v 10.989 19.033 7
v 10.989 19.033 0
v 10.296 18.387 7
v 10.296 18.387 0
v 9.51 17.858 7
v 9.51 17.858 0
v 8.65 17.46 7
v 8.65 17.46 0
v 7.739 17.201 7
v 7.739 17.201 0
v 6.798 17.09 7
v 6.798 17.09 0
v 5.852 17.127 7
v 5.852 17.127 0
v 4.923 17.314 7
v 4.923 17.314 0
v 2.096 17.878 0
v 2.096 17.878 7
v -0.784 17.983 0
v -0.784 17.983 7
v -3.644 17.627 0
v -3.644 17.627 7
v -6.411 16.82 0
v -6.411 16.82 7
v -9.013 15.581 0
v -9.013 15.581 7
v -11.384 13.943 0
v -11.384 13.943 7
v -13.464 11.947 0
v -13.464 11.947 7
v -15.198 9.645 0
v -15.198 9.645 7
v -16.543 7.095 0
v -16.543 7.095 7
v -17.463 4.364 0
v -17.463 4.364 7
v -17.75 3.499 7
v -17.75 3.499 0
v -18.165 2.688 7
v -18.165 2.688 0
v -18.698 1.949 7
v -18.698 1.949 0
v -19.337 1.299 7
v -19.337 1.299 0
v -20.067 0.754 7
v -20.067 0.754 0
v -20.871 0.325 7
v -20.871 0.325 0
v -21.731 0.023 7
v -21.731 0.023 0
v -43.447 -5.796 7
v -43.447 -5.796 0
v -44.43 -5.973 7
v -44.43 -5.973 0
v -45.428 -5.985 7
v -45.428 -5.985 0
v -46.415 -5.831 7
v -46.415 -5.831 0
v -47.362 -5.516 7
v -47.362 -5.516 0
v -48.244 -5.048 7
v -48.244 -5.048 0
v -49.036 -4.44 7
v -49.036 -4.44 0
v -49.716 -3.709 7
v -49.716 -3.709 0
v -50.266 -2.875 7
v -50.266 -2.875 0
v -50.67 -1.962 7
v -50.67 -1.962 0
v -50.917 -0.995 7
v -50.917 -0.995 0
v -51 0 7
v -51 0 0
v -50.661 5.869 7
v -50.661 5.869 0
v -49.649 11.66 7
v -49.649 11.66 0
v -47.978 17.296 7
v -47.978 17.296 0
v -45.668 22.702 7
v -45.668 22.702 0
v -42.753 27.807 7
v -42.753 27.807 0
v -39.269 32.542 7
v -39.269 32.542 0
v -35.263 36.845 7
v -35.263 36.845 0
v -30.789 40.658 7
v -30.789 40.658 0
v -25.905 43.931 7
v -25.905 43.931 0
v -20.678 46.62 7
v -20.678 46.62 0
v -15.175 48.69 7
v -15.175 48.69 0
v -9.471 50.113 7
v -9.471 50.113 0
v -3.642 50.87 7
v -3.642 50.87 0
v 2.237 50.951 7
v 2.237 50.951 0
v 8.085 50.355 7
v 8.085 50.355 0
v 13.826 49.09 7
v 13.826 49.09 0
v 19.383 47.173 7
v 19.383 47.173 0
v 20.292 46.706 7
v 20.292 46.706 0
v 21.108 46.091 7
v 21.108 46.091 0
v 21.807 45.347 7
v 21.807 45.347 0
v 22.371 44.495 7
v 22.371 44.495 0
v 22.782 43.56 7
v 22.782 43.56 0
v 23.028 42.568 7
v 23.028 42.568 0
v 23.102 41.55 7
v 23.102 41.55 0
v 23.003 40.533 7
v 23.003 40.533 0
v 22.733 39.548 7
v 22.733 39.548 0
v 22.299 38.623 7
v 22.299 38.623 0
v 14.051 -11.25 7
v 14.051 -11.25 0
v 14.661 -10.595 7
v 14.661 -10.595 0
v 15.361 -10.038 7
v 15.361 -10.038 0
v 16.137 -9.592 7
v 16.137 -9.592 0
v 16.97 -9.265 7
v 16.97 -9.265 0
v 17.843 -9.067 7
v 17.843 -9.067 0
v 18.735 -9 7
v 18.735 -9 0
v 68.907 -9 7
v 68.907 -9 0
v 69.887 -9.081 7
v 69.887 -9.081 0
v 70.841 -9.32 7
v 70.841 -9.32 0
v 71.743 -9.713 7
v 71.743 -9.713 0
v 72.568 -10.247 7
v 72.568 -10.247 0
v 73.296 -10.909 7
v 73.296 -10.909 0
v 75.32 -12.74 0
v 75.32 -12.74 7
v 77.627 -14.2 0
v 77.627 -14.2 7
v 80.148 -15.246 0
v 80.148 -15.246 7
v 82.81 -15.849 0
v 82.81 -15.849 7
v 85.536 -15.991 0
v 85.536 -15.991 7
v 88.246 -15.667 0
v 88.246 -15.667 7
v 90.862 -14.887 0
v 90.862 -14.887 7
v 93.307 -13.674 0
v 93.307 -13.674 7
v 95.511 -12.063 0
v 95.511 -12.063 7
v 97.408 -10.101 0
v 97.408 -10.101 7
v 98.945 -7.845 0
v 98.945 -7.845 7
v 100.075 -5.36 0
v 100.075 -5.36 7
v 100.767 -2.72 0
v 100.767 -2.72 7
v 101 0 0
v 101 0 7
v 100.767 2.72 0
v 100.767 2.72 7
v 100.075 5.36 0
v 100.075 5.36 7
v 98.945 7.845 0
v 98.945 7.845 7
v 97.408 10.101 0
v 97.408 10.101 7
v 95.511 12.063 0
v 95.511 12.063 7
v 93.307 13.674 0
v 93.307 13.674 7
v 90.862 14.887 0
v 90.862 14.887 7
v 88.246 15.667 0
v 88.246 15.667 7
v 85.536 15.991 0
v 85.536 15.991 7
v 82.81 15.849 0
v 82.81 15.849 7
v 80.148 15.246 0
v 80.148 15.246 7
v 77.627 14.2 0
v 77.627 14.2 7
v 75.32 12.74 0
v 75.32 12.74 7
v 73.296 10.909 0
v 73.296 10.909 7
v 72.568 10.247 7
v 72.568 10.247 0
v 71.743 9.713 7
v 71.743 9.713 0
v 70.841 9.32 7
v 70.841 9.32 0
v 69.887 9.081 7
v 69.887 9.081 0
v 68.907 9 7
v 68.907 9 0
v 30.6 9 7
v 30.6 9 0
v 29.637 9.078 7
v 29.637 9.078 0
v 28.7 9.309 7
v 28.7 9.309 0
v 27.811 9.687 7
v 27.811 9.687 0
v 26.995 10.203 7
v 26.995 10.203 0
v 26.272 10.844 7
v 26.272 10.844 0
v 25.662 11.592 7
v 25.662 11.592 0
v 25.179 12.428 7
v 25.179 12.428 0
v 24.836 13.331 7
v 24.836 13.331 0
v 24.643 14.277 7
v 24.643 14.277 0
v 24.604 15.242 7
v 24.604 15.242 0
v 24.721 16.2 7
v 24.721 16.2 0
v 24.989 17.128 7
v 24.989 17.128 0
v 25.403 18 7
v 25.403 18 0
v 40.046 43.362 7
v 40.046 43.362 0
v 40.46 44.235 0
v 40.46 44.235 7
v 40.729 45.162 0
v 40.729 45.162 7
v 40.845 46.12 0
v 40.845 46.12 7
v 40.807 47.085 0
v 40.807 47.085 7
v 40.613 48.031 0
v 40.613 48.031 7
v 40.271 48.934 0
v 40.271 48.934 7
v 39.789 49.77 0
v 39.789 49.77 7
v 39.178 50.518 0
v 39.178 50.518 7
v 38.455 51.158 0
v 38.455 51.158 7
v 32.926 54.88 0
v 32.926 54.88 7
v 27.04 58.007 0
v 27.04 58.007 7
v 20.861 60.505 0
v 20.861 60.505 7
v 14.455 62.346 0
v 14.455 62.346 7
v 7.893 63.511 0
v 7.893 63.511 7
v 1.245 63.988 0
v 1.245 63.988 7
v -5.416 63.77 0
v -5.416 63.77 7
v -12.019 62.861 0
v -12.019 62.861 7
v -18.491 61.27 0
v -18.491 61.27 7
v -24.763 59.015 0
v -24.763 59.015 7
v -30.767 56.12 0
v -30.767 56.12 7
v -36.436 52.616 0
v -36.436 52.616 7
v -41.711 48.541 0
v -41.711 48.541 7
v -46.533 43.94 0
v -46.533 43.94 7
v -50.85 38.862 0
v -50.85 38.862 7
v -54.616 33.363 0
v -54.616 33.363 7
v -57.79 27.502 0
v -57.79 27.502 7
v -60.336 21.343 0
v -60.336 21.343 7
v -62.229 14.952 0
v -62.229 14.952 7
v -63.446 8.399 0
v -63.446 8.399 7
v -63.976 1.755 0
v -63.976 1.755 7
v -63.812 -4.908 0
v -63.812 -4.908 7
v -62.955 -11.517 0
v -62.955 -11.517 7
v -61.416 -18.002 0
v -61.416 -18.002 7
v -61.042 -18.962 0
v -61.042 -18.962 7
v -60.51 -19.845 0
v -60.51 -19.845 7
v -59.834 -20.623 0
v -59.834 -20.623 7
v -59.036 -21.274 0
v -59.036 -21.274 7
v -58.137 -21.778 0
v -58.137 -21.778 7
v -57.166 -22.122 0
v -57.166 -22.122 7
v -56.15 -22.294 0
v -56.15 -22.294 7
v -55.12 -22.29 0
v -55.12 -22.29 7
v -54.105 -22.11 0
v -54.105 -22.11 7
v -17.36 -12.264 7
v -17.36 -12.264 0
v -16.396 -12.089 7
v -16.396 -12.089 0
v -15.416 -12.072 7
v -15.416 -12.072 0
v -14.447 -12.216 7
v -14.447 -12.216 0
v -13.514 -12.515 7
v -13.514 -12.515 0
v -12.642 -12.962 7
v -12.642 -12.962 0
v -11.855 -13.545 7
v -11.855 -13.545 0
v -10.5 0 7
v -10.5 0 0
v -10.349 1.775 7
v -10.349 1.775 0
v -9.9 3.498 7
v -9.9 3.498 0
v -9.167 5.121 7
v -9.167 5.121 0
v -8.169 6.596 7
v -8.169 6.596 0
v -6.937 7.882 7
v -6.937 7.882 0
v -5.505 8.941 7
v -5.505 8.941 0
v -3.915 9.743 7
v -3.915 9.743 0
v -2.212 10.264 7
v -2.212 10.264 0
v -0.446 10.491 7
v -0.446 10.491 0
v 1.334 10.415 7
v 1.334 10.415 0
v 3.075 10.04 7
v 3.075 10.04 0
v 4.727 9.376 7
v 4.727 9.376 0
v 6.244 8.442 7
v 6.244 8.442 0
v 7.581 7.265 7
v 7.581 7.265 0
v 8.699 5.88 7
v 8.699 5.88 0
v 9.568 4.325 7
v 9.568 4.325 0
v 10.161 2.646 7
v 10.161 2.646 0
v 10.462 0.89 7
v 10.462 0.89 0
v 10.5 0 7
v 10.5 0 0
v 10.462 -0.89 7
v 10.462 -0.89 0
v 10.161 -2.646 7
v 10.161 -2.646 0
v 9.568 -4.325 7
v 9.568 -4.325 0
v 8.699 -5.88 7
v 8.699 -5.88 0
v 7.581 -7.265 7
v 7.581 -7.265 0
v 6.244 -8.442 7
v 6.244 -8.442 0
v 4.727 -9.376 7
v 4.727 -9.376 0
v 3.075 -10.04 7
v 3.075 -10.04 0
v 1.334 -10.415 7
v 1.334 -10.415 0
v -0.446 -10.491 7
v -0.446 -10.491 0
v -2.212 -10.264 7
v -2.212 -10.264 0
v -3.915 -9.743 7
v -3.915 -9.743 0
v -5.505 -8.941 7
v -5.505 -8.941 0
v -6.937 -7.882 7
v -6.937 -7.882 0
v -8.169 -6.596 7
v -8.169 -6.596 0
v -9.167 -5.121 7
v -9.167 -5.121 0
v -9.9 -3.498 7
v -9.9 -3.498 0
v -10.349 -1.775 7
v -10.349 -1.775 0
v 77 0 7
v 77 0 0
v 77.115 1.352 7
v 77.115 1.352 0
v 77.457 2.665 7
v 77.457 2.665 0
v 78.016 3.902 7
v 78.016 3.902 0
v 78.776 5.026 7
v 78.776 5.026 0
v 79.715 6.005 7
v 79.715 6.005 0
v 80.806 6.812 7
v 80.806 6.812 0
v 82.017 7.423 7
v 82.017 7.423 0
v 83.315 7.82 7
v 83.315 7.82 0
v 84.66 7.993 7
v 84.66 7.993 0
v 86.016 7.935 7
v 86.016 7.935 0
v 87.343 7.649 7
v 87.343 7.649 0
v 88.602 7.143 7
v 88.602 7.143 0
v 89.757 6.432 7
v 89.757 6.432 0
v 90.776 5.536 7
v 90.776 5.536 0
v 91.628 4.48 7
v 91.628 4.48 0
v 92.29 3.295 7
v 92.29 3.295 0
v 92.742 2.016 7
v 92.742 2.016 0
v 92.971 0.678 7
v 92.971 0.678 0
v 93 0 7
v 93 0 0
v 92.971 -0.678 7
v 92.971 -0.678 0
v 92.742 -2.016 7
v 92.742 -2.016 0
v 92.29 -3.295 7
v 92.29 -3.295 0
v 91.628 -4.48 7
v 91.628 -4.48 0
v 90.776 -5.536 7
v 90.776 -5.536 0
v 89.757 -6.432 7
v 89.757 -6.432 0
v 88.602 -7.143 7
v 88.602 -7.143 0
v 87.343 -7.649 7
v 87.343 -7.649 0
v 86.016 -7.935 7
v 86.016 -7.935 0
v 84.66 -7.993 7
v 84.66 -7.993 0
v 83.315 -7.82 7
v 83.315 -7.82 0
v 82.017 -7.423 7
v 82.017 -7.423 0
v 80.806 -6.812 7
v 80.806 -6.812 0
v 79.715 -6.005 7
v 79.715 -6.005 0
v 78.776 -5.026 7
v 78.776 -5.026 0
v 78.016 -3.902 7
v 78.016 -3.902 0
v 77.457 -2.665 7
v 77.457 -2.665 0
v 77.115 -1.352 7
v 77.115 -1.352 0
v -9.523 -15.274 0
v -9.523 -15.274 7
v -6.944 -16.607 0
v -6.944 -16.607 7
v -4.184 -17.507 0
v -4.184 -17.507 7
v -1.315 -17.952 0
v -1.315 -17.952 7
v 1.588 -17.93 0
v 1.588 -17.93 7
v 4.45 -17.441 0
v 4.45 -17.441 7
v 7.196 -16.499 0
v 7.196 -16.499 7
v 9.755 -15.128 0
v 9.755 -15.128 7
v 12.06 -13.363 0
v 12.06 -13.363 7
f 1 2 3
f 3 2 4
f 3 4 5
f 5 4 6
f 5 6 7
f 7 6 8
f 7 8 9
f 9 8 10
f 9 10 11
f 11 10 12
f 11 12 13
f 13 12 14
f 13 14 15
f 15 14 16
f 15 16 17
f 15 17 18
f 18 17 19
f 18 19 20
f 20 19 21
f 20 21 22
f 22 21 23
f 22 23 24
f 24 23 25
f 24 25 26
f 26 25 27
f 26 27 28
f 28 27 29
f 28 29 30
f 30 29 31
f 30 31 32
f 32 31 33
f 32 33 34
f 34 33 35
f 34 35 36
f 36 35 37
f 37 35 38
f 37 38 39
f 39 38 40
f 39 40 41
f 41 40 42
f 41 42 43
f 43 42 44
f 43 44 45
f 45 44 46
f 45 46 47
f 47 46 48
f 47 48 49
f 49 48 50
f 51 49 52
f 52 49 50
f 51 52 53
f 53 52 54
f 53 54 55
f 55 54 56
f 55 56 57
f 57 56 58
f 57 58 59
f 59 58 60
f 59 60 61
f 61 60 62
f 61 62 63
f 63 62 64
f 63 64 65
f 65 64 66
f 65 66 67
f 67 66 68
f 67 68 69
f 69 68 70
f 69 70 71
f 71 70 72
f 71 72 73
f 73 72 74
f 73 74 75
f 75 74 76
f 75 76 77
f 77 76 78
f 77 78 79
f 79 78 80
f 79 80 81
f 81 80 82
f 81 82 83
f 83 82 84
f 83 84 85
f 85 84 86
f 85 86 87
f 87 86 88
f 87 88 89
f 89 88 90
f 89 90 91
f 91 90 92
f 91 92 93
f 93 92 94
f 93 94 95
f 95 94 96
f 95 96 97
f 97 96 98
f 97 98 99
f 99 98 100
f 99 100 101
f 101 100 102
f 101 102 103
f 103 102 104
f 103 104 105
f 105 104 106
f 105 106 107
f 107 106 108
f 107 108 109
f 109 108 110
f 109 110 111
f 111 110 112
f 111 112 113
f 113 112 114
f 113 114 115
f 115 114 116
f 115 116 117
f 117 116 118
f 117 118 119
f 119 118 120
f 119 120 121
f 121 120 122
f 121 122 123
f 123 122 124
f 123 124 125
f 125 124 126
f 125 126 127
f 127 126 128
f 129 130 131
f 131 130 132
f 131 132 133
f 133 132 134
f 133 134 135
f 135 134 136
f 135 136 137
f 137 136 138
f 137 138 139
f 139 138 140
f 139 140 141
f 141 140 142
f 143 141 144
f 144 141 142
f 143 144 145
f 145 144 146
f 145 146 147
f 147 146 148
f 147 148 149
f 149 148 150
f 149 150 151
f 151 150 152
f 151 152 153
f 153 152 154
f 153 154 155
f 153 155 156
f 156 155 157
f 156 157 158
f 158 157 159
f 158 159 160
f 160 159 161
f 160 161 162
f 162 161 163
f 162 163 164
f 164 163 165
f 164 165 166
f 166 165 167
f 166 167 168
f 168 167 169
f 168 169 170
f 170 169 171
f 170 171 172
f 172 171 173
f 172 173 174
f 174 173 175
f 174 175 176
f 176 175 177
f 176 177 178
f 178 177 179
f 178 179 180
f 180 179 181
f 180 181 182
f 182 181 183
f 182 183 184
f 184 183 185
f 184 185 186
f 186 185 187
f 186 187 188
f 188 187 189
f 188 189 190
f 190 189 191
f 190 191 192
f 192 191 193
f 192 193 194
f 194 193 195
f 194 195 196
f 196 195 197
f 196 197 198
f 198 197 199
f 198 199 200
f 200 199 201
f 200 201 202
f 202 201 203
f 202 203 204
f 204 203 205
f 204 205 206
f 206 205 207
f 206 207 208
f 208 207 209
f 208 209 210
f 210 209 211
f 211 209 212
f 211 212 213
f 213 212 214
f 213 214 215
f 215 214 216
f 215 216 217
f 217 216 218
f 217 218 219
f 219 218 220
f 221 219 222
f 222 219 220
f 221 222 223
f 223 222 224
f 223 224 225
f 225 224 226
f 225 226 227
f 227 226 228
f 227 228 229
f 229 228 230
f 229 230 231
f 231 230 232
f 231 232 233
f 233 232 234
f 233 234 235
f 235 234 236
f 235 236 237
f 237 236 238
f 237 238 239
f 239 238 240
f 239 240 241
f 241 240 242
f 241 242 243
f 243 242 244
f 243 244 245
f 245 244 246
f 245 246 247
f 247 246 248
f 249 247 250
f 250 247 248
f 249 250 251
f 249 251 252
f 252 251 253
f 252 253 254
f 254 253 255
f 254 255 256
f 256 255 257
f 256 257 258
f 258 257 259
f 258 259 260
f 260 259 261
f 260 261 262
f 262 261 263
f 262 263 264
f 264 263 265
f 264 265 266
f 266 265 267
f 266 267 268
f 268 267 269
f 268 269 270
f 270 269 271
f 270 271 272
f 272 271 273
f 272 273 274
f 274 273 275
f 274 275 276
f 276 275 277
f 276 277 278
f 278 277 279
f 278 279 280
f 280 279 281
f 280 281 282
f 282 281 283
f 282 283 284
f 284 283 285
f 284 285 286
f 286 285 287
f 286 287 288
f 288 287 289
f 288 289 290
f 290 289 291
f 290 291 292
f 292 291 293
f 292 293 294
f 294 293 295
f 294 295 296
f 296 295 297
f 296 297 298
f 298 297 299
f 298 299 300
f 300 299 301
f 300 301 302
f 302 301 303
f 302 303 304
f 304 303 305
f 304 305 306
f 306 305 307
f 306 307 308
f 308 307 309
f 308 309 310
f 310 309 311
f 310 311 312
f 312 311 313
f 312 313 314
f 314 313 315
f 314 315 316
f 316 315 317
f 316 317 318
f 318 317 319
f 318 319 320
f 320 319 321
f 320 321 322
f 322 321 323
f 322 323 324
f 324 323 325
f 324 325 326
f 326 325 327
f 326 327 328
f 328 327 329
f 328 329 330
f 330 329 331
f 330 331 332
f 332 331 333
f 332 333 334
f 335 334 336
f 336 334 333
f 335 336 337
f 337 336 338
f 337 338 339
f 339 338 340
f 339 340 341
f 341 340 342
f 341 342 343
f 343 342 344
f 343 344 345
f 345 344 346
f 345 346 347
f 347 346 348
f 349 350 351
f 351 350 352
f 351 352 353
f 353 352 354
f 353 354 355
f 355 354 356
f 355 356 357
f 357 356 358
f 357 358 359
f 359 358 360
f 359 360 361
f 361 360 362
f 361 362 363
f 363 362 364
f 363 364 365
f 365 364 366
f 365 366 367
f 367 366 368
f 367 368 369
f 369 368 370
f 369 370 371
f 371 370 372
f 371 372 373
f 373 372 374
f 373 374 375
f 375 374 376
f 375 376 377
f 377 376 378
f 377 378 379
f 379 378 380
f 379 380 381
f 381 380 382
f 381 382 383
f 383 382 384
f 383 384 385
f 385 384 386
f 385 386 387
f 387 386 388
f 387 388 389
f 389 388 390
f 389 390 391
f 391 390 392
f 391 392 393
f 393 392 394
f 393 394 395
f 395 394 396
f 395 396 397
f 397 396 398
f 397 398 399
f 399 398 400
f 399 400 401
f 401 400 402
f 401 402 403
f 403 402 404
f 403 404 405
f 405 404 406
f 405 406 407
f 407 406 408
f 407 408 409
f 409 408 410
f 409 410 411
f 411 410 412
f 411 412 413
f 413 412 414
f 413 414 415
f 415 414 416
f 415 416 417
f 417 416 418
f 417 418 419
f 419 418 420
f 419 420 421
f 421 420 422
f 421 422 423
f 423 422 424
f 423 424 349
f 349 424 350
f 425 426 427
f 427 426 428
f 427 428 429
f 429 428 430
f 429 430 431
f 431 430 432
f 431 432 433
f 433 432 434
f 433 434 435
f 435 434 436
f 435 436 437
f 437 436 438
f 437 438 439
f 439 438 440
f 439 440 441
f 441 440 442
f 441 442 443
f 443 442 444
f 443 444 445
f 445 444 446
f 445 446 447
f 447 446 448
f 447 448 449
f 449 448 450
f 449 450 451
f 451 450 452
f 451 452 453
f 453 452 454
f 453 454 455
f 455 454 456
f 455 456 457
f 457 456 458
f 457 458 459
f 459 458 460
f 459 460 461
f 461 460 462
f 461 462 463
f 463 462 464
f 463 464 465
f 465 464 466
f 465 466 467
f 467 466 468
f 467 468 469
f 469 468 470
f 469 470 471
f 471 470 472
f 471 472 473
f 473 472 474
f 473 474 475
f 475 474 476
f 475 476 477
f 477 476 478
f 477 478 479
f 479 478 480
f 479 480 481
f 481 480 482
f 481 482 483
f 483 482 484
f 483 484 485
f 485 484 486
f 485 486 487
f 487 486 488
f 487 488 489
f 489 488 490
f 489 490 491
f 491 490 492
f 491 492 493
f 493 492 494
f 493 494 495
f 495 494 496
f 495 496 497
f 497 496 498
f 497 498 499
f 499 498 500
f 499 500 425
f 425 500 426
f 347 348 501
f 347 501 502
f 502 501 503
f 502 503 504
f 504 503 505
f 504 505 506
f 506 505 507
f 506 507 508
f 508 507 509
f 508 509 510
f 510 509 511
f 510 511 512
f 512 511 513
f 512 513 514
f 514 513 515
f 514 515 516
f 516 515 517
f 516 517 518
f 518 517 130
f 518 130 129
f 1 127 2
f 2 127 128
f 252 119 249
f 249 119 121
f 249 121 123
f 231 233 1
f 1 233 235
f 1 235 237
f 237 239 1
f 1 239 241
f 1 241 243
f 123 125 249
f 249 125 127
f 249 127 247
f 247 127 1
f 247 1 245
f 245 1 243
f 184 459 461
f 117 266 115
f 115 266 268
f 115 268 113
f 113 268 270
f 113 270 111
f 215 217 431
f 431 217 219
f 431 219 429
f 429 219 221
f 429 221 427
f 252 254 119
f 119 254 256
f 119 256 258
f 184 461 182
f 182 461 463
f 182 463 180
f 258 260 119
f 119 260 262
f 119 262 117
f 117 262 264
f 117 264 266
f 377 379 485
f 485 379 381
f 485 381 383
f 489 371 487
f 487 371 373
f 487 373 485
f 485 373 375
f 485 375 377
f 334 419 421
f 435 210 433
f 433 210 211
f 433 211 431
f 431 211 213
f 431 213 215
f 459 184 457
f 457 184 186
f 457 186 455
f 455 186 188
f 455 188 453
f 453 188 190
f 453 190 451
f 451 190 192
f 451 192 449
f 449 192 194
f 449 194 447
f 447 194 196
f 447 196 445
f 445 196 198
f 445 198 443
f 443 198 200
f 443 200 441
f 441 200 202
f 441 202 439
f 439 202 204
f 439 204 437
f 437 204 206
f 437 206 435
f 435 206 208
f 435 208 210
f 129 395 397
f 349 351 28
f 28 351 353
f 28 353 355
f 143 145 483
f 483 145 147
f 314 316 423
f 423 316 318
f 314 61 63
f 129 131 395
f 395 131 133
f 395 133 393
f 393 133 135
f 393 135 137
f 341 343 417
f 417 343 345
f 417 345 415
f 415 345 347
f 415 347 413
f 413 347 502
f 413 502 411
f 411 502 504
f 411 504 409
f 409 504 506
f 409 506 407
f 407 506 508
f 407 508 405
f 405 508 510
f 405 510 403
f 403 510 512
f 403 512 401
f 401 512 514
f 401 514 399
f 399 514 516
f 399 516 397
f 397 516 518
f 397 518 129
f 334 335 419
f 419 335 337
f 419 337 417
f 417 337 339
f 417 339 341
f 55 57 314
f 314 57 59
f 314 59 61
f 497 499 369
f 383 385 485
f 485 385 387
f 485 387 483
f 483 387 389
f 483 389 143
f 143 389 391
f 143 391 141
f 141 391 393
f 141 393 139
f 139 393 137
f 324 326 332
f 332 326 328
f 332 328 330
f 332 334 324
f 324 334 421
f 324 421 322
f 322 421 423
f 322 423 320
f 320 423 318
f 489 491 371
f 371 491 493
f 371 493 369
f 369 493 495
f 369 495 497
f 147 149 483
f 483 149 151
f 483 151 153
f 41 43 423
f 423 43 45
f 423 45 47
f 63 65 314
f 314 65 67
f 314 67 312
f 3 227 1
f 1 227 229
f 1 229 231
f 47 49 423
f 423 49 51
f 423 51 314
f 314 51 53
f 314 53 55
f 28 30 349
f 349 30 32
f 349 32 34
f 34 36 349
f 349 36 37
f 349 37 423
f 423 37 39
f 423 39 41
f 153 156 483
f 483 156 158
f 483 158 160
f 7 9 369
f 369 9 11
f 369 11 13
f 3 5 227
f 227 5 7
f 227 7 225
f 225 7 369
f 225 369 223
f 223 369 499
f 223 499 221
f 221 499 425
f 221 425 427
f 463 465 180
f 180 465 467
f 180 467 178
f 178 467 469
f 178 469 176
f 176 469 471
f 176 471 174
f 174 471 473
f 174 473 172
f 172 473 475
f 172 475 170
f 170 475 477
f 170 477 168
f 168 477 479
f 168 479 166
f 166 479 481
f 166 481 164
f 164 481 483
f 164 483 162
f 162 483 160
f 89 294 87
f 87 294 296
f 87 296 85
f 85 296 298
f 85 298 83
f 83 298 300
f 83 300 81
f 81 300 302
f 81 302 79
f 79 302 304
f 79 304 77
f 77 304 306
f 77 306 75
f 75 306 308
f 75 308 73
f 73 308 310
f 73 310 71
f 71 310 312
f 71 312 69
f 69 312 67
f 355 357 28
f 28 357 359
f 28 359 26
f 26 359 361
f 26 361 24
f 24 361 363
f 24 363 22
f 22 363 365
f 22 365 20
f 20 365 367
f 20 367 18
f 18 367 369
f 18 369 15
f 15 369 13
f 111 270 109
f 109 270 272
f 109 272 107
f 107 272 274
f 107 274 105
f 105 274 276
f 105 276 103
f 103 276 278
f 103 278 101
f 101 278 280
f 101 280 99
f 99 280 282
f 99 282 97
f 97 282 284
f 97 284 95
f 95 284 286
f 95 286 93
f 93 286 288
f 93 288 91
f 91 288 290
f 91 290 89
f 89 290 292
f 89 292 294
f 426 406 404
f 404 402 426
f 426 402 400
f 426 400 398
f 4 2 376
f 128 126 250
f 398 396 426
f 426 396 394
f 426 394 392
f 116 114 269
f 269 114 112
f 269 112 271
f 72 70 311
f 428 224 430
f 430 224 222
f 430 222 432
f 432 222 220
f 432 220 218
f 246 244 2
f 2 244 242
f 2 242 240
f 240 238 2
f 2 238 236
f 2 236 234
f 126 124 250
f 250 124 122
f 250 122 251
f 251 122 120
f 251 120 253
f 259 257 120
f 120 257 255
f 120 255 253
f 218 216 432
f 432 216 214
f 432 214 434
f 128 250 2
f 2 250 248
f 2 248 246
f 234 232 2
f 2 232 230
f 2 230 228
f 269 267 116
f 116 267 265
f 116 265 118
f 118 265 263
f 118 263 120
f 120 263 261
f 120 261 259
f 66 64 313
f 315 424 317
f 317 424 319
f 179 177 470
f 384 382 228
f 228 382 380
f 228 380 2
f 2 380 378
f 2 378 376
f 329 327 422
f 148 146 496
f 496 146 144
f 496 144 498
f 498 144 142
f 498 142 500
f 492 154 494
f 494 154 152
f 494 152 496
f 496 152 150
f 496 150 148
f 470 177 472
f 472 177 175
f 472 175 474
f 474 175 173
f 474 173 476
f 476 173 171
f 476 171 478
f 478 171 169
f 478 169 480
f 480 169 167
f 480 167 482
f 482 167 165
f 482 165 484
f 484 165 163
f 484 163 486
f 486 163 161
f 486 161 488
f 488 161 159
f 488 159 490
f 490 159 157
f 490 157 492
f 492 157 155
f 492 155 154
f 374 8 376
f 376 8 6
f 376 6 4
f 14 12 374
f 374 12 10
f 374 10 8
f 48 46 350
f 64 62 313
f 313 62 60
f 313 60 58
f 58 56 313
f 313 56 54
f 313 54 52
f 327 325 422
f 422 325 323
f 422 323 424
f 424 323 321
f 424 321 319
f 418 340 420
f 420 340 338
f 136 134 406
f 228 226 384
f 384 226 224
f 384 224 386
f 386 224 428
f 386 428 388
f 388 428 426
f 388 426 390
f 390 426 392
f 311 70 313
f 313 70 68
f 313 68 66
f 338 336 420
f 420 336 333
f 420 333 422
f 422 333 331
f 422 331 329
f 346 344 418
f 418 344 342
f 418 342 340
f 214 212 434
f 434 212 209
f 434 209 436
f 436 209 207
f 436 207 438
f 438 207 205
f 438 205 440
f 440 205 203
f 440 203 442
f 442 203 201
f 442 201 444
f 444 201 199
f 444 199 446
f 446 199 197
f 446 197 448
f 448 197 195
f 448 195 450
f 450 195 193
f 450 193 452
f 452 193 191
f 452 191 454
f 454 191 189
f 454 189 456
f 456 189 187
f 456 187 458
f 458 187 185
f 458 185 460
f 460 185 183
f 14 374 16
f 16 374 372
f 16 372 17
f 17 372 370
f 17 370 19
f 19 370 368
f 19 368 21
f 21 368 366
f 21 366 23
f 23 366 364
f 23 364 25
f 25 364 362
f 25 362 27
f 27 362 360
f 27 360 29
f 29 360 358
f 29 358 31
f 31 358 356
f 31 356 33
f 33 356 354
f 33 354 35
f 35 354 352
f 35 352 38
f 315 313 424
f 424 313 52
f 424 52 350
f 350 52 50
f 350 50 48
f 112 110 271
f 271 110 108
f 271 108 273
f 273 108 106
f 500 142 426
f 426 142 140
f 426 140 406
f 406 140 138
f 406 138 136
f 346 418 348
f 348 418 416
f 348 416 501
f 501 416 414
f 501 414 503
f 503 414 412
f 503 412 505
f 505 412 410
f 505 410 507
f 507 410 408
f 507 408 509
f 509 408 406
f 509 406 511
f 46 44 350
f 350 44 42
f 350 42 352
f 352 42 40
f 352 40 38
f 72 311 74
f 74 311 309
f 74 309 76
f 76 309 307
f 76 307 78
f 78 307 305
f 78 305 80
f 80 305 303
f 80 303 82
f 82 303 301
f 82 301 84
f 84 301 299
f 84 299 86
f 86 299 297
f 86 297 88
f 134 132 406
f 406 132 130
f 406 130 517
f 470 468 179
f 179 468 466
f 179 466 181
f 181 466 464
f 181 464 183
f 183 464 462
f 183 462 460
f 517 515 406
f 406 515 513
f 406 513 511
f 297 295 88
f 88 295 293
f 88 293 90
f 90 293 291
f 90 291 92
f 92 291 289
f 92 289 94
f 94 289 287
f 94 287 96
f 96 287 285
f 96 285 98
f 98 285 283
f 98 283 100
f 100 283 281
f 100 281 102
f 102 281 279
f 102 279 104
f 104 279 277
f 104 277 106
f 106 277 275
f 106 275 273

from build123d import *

# Parameters (mm, degrees)
SKETCH2_R           = 8
SKETCH2_R_2         = 10.5
BOSS_EXTRUDE2_DEPTH = 7


with BuildPart() as part:
    # Sketch2 → Boss-Extrude2 (new body)
    with BuildSketch(Plane.XY):
        with BuildLine():
            ThreePointArc((18.734993995, -9), (16.136917784, -9.591673087), (14.051245496, -11.25))
            ThreePointArc((14.051245496, -11.25), (1.588158791, -17.929800658), (-11.855019266, -13.544685977))
            ThreePointArc((-11.855019266, -13.544685977), (-14.447084602, -12.215655673), (-17.359606625, -12.264026344))
            Line((-17.359606625, -12.264026344), (-54.105315802, -22.110009444))
            ThreePointArc((-54.105315802, -22.110009444), (-58.597408553, -21.545250779), (-61.415978011, -18.002156674))
            ThreePointArc((-61.415978011, -18.002156674), (-36.436152523, 52.615651562), (38.455388874, 51.158411493))
            ThreePointArc((38.455388874, 51.158411493), (40.729032534, 47.562011618), (40.04634859, 43.362310416))
            Line((40.04634859, 43.362310416), (25.403411844, 18))
            ThreePointArc((25.403411844, 18), (25.403411844, 12), (30.599564267, 9))
            Line((30.599564267, 9), (68.906523061, 9))
            ThreePointArc((68.906523061, 9), (71.299695166, 9.497934272), (73.295653135, 10.909090909))
            ThreePointArc((73.295653135, 10.909090909), (101, 0), (73.295653135, -10.909090909))
            ThreePointArc((73.295653135, -10.909090909), (71.299695166, -9.497934272), (68.906523061, -9))
            Line((68.906523061, -9), (18.734993995, -9))
        make_face()
        with Locations((85, 0)):
            Circle(SKETCH2_R, mode=Mode.SUBTRACT)
        Circle(SKETCH2_R_2, mode=Mode.SUBTRACT)
        with BuildLine():
            ThreePointArc((10.98874406, 19.033063022), (8.199770085, 17.312416637), (4.922729046, 17.313773094))
            ThreePointArc((4.922729046, 17.313773094), (-9.01320029, 15.580828622), (-17.462949753, 4.364101961))
            ThreePointArc((-17.462949753, 4.364101961), (-19.005575236, 1.612182259), (-21.731018733, 0.023247657))
            Line((-21.731018733, 0.023247657), (-43.447085729, -5.795554958))
            ThreePointArc((-43.447085729, -5.795554958), (-48.652568574, -4.760120042), (-51, 0))
            ThreePointArc((-51, 0), (-28.394096654, 42.364788152), (19.383344125, 47.172936845))
            ThreePointArc((19.383344125, 47.172936845), (22.781794932, 43.559859246), (22.299103121, 38.623179569))
            Line((22.299103121, 38.623179569), (10.98874406, 19.033063022))
        make_face(mode=Mode.SUBTRACT)
    extrude(amount=BOSS_EXTRUDE2_DEPTH)


solid = part.part
